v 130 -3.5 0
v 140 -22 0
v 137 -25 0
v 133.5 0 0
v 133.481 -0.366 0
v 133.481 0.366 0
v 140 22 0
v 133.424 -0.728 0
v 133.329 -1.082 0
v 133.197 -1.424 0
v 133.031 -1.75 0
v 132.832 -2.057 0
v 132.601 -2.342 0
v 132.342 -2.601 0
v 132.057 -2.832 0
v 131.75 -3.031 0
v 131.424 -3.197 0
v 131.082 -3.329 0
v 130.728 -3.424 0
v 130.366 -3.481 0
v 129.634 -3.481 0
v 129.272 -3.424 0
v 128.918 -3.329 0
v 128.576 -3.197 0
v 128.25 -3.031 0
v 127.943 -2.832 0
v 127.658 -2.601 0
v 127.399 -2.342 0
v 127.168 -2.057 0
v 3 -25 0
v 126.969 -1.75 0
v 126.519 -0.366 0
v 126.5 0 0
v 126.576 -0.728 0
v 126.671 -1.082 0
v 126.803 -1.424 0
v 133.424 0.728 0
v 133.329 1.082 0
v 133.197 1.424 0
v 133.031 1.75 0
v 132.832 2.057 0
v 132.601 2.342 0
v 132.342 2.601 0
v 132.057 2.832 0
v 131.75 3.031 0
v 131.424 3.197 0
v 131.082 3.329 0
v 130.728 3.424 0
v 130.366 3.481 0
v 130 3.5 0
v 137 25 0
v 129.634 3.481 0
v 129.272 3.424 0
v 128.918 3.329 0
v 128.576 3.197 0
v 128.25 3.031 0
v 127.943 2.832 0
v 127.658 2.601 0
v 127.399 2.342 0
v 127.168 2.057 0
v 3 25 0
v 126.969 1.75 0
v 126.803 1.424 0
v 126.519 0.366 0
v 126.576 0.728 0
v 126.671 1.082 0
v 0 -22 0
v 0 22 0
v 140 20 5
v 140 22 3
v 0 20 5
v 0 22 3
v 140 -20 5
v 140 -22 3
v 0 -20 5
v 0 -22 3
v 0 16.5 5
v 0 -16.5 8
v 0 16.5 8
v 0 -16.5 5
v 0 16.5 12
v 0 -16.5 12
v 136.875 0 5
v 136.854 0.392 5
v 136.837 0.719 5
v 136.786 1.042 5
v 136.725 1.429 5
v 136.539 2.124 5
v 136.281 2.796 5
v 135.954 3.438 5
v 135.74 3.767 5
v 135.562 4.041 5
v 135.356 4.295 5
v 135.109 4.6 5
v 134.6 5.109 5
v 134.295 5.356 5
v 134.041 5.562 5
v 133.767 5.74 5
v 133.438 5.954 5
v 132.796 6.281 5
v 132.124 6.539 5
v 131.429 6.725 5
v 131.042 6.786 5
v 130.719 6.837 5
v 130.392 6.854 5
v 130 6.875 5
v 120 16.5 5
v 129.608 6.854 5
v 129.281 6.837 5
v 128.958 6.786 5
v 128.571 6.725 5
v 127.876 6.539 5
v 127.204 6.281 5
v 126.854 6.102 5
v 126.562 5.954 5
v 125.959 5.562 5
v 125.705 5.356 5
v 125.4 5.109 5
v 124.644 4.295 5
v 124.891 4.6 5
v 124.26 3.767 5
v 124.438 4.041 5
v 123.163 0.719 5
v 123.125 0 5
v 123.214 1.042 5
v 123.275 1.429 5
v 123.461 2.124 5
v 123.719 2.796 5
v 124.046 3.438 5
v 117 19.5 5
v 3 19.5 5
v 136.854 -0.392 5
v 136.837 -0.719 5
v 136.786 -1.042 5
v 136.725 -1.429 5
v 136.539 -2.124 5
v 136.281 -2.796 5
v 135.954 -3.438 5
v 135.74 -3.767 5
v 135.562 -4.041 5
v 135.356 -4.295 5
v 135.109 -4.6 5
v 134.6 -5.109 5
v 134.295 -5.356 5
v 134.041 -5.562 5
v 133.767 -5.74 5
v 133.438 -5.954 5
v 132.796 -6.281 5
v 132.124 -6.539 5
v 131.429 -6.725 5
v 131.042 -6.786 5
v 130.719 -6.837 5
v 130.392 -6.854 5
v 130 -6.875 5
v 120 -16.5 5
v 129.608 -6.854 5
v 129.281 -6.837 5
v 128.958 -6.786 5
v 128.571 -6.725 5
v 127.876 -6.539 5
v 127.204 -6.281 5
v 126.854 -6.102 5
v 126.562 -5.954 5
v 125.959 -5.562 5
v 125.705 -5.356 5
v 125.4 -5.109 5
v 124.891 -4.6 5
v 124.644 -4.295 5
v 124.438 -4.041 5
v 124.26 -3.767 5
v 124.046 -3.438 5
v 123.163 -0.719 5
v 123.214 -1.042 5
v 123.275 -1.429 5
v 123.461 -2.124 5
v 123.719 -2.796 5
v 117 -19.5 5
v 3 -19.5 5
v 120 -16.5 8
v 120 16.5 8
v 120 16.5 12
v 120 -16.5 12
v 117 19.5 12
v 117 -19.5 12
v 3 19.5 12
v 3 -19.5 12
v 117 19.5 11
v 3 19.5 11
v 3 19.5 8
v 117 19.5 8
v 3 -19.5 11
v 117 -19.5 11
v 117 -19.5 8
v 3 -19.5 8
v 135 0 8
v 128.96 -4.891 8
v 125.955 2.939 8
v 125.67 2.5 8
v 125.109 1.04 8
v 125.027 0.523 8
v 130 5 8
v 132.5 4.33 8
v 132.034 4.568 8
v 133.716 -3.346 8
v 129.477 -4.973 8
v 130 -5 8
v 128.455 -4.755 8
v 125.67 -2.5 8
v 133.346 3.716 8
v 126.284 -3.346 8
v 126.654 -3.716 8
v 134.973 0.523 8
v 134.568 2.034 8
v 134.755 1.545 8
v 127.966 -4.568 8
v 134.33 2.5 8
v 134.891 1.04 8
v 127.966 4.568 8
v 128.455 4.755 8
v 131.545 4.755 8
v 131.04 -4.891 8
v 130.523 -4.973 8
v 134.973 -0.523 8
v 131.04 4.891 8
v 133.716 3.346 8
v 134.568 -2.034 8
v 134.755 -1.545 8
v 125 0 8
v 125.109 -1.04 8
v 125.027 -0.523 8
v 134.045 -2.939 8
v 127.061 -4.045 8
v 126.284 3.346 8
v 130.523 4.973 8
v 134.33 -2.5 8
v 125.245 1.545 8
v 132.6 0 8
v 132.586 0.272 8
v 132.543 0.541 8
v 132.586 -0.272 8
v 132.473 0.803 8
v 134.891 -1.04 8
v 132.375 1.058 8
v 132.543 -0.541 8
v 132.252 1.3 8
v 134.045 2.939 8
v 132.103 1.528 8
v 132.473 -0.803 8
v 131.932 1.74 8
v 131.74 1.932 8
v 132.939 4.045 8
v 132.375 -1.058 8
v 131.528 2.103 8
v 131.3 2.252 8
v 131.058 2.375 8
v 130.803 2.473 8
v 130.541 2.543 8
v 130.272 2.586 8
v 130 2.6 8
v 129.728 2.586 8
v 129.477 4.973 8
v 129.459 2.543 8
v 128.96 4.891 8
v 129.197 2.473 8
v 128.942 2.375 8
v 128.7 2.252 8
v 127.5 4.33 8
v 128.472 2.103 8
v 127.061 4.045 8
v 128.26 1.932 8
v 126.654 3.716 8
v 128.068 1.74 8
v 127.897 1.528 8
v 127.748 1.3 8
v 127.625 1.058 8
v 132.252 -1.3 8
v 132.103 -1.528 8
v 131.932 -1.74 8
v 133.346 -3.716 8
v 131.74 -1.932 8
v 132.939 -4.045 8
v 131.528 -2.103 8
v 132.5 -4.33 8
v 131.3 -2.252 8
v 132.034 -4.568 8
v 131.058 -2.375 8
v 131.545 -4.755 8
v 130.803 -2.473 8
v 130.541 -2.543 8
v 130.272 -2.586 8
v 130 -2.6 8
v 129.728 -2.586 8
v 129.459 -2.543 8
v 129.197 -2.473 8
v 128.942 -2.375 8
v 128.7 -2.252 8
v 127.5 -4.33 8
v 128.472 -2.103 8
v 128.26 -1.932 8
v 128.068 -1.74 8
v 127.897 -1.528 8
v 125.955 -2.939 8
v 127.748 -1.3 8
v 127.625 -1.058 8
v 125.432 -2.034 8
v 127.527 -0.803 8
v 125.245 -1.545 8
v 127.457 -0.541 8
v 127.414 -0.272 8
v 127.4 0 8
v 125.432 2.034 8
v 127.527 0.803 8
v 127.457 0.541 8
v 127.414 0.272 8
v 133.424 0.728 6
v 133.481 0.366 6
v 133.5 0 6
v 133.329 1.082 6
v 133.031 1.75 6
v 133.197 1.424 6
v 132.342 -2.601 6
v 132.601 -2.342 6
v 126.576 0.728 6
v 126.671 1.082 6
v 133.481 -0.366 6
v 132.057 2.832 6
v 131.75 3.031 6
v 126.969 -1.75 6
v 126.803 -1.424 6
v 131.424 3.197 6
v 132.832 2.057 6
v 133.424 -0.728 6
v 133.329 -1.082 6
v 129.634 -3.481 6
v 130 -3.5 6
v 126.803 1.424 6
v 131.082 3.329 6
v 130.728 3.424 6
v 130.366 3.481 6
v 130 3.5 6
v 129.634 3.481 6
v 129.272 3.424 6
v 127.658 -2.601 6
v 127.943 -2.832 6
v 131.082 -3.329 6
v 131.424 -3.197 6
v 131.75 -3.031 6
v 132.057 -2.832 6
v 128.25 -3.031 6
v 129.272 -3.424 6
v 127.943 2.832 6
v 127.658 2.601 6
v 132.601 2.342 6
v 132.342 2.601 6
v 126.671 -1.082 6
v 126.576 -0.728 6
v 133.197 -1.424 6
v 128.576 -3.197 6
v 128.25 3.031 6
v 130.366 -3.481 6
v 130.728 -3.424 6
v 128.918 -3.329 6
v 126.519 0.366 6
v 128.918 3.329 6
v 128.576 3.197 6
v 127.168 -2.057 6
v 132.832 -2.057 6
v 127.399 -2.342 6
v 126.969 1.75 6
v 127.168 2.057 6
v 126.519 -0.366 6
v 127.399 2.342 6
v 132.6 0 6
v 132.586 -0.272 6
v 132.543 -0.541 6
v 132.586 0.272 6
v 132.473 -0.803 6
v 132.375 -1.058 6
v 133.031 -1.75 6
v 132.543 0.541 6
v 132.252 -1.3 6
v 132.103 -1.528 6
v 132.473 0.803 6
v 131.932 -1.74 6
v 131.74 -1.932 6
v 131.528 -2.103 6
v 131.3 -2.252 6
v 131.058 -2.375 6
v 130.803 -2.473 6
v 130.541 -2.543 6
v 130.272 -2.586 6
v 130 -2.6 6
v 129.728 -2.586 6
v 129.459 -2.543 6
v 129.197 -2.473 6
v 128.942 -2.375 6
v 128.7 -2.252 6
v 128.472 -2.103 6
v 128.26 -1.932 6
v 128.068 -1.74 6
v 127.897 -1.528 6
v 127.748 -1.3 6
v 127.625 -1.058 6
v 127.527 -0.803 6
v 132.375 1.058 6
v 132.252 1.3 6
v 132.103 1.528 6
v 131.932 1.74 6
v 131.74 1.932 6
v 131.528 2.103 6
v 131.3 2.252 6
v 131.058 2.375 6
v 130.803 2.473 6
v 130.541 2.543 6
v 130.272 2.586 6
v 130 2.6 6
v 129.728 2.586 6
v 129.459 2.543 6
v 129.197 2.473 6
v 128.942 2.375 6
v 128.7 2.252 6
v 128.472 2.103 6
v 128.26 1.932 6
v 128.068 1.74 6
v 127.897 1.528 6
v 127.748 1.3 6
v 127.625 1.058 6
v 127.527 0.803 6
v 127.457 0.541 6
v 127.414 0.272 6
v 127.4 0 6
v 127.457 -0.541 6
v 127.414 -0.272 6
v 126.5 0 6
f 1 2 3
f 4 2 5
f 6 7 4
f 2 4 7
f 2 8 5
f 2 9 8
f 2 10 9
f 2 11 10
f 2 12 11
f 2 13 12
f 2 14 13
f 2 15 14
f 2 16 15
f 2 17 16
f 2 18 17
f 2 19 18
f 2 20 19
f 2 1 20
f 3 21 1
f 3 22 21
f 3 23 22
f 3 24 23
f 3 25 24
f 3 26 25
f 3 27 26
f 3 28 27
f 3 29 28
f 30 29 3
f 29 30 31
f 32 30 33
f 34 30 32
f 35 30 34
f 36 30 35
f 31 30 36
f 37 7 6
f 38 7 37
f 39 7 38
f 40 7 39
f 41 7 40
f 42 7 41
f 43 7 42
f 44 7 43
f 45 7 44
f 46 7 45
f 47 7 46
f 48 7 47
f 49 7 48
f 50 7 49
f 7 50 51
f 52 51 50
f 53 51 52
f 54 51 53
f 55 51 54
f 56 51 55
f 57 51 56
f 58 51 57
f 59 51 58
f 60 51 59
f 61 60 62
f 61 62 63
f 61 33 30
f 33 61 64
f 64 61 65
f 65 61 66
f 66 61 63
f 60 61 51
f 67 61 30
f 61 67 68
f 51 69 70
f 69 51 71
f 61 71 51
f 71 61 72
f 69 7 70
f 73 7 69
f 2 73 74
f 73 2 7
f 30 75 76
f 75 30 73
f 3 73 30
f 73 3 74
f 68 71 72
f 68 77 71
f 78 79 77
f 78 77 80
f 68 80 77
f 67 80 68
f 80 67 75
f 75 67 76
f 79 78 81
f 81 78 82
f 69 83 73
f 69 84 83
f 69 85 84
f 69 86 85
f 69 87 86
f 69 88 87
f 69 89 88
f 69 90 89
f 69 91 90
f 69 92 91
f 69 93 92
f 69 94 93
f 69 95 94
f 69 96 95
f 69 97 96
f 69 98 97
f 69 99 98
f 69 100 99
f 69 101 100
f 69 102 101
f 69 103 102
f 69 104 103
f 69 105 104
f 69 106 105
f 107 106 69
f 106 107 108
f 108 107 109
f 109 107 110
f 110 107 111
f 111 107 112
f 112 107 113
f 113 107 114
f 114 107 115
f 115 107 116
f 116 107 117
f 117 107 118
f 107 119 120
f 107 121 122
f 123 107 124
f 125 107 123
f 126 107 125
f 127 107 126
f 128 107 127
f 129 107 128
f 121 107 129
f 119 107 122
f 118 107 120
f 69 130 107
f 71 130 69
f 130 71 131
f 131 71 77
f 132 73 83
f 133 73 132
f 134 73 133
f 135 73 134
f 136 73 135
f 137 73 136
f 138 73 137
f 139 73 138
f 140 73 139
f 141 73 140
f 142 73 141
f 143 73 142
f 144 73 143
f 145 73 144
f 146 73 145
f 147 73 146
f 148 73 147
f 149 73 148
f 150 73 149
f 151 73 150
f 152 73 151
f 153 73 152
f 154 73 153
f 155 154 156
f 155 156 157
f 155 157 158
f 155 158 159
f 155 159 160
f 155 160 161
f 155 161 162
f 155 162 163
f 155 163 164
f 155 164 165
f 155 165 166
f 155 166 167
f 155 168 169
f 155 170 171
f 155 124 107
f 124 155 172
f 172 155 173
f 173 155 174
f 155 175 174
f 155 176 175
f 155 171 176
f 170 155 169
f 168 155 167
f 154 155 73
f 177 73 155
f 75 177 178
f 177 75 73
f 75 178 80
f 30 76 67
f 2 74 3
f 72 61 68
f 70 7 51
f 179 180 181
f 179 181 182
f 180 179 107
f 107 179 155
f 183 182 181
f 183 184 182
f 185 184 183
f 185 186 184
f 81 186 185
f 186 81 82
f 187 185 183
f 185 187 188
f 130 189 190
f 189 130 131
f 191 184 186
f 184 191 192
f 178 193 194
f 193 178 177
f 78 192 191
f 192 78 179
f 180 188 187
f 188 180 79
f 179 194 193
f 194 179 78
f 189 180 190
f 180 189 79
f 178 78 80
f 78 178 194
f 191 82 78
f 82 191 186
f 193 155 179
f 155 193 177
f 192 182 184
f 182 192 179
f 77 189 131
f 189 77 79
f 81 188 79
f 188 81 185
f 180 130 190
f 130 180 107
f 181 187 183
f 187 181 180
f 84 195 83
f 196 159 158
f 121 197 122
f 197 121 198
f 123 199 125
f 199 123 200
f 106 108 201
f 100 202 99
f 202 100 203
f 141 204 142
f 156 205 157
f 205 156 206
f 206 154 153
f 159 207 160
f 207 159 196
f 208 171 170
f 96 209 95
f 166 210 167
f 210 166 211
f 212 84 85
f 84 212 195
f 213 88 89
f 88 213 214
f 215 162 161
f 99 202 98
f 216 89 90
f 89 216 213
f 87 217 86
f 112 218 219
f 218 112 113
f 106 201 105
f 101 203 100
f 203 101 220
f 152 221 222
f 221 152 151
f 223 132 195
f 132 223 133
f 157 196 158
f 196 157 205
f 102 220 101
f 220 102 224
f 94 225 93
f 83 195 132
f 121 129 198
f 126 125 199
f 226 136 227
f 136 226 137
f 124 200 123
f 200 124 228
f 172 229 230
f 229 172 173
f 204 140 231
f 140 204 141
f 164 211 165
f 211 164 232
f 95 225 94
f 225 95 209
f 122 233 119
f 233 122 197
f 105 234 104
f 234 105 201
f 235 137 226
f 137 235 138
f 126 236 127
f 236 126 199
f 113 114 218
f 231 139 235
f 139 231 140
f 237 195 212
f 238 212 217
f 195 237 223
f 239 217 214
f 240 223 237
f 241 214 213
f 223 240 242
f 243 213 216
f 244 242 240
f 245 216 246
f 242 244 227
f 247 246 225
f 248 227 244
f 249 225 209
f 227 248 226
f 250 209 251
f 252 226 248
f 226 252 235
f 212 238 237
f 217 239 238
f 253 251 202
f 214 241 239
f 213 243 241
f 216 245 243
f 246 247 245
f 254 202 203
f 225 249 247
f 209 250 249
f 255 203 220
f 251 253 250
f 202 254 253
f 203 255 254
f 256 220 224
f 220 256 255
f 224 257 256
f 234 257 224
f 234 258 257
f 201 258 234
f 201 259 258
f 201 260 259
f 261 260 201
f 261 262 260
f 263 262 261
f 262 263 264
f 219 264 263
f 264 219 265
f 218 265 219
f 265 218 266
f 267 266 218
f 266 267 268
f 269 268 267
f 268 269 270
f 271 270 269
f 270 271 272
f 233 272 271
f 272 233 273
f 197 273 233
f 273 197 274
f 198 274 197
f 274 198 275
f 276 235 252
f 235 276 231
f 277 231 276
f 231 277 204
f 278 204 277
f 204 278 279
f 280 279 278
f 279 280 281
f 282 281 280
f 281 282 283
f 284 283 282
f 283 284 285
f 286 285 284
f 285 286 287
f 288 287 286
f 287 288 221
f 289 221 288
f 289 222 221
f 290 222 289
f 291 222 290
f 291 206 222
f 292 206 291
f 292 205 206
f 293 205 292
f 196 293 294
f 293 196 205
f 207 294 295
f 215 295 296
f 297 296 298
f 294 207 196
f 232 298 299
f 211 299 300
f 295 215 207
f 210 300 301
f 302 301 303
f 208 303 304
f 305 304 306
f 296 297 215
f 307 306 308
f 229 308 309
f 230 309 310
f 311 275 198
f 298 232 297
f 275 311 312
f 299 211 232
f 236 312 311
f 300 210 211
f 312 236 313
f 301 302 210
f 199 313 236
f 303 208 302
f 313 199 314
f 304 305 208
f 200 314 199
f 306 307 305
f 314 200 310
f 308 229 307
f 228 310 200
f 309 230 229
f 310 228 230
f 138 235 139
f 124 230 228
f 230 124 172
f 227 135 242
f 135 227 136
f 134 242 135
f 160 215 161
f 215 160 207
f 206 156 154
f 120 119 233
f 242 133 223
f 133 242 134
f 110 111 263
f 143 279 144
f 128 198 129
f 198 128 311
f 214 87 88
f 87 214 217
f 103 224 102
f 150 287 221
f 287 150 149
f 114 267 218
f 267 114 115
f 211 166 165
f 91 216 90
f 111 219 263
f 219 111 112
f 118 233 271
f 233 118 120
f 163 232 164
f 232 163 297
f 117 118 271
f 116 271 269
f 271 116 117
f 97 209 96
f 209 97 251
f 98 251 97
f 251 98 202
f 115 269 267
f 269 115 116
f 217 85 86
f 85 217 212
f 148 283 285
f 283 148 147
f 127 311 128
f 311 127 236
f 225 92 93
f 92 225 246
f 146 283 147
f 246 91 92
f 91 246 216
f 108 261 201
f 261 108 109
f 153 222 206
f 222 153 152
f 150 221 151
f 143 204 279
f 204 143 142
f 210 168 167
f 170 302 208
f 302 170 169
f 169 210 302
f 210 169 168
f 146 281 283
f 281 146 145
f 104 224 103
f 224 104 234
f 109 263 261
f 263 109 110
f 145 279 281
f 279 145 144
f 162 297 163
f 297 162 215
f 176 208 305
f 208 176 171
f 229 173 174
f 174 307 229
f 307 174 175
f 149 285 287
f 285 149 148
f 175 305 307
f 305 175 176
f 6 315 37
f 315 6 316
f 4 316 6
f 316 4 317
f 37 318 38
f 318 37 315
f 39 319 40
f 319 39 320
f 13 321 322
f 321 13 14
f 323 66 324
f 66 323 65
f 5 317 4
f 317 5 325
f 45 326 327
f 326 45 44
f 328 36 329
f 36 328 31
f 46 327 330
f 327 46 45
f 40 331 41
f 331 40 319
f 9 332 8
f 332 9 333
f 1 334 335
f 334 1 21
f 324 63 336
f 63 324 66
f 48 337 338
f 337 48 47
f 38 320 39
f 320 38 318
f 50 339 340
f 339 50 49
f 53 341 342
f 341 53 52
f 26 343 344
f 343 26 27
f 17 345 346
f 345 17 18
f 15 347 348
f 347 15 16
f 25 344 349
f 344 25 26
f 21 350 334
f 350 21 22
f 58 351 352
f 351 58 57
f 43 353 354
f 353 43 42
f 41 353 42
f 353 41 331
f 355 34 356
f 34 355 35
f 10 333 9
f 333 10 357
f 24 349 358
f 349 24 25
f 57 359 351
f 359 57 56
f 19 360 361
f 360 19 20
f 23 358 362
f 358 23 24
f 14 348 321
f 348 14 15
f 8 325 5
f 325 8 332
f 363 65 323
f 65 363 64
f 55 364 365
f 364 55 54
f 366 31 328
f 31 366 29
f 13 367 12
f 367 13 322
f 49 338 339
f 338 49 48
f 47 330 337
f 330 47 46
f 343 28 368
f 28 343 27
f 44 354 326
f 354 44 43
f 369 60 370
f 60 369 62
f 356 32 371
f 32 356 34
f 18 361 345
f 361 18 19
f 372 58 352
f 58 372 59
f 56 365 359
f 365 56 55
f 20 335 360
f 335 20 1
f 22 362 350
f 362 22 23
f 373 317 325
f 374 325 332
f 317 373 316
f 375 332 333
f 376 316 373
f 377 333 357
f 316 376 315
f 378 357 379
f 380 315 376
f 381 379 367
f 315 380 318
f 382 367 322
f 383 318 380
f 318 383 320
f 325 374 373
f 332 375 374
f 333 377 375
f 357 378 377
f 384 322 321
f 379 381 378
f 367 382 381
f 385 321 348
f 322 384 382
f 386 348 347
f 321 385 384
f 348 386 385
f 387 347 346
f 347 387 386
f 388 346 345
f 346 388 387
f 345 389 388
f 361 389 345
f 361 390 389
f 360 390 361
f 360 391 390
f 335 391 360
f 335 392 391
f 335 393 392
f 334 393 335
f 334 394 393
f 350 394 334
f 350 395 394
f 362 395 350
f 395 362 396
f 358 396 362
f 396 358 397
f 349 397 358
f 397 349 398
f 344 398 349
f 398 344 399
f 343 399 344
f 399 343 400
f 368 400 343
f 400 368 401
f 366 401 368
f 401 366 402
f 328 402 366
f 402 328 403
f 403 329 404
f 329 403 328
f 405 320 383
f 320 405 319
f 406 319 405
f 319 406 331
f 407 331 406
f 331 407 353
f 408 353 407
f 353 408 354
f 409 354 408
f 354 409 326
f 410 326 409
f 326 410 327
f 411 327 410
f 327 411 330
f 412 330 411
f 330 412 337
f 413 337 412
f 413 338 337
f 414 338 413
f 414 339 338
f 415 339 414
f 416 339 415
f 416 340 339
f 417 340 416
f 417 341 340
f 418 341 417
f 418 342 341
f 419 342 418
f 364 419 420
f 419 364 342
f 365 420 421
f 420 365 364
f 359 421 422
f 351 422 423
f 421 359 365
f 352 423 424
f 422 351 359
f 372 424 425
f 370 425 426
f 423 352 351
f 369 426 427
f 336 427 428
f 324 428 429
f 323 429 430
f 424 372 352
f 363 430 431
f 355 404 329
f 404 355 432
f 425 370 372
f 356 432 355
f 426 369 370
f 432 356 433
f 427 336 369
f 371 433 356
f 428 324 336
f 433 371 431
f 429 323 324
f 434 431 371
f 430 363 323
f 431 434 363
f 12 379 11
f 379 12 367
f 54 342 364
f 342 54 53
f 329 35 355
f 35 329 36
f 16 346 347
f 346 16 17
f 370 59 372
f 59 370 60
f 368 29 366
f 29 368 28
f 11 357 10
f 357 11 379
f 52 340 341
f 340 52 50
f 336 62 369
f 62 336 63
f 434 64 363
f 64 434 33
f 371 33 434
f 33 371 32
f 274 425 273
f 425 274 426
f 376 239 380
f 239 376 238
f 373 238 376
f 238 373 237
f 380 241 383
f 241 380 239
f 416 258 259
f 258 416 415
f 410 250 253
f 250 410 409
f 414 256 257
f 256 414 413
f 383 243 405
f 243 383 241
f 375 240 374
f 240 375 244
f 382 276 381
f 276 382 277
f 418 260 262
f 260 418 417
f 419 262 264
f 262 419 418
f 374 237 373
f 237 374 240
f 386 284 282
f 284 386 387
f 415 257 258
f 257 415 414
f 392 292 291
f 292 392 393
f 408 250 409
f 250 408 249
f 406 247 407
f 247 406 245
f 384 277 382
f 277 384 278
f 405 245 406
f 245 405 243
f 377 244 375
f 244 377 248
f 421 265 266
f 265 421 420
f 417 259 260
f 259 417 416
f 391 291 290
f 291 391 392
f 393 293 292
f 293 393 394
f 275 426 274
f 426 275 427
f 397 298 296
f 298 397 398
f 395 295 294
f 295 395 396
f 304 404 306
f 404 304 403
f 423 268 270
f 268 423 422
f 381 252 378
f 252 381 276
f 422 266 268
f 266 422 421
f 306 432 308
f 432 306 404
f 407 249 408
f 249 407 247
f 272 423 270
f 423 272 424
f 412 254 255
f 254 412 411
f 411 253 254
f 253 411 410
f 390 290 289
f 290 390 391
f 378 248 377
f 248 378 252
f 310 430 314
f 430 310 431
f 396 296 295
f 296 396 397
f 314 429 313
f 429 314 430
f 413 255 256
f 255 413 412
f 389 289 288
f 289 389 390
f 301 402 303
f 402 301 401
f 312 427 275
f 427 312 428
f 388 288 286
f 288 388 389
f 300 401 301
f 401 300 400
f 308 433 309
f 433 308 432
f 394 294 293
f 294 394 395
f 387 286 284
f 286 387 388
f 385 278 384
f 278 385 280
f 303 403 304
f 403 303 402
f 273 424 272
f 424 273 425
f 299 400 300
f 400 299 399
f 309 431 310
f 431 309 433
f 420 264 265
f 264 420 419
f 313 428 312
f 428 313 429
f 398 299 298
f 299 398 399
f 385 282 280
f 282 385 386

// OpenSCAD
// Screwholes for the stabilizing lid

$fn=60;


module roof(l, w, h){
    polyhedron(
        points=[
            [0,0,0],
            [l,0,0],
            [l,w,0],
            [0,w,0],
            [0,w/2,h],
            [l,w/2,h]
            ],
        faces=[
            [0,1,2,3],
            [0,4,1],
            [1,4,5,2],
            [2,5,3],
            [3,5,4,0]
            ]
            );
    };

//roof(20, 10, 15);

module wedge(l, w, h) {
    polyhedron(
            points=[
                [0,0,0],
                [l,0,0],
                [0,w,0],
                [0,0,h],
                [l,0,h],
                [0,w,h]
            ],
            faces=[
                [0,1,2],
                [0,3,4,1],
                [1,4,5,2],
                [2,5,3,0],
                [3,5,4]
            ]
    );
   };    
//wedge(20, 30, 40);

module tube(d1, d2, h) {
    difference() {
        cylinder(d=d1, h=h);
        cylinder(d=d2, h=h);
        }
    };







module countersunk_screw(vScrew_d, vScrew_l){
    union(){
    cylinder(d=vScrew_d, h= vScrew_l);
    cylinder(d1=vScrew_d*2, h=vScrew_d);
    };
}









vDovetailTolerance_width = 0.2;
vDovetailTolerance_height = 0.2;

vTotalPlate_length = 140;
vTotalPlate_height = 12;

vDovetail_length = vTotalPlate_length;
vDovetailOuter_width = 50;
vDovetailInner_width = 40;
vDovetail_height = (vDovetailOuter_width-vDovetailInner_width)/2;
vDovetail_offsetX = 0;
vDovetail_offsetY = -vDovetailOuter_width/2;
vDovetail_offsetZ = 0;

vDovetailEdgeCutoff = 3;

vArca_length = 120;
vArca_width = 39;
vArca_height = 7;
vArcaBase_cutout = 3;
vArcaBase_height = 1;
vArca_offsetX = 0;
vArca_offsetY = -vArca_width/2;
vArca_offsetZ = vDovetail_height+vArca_height;

vArcaEdgeCutoff = 3;


vLockingCylinder_d1 = 20;
vLockingCylinder_d2 = 10;
vLockingCylinder_h = 8;
vLockingCylinder_offsetX = vTotalPlate_length-10;
vLockingCylinder_offsetY = 0;
vLockingCylinder_offsetZ = 0;

// we are using a M5x6x7 thread nut!
vLockingThreadHole_d = 7;
vLockingThreadHole_h = 6;
vLockingThreadHole_offsetX = vLockingCylinder_offsetX;
vLockingThreadHole_offsetY = vLockingCylinder_offsetY;
vLockingThreadHole_offsetZ = vLockingCylinder_offsetZ;

vLockingHole_d = 5.2;
vLockingHole_h = vTotalPlate_height;
vLockingHole_offsetX = vLockingCylinder_offsetX;
vLockingHole_offsetY = vLockingCylinder_offsetY;
vLockingHole_offsetZ = vLockingCylinder_offsetZ;


difference(){
    union(){
        // Dovetail plate
        translate([vDovetail_offsetX, vDovetail_offsetY, vDovetail_offsetZ])
            difference(){
                intersection(){
                    roof(vDovetail_length, vDovetailOuter_width, vDovetailOuter_width/2);
                    cube([vDovetail_length, vDovetailOuter_width, vDovetail_height]);
                };
                // cut off dovetail edges
                translate([0, 0, 0])
                    wedge(vDovetailEdgeCutoff, vDovetailEdgeCutoff, vDovetail_height);
                translate([vDovetail_length, 0, 0])
                    wedge(-vDovetailEdgeCutoff, vDovetailEdgeCutoff, vDovetail_height);
                translate([0, vDovetailOuter_width, 0])
                    wedge(vDovetailEdgeCutoff, -vDovetailEdgeCutoff, vDovetail_height);
                translate([vDovetail_length, vDovetailOuter_width, 0])
                    wedge(-vDovetailEdgeCutoff, -vDovetailEdgeCutoff, vDovetail_height);
                
            };
        
        // Arca plate    
        translate([vArca_offsetX, vArca_offsetY, vArca_offsetZ])
            mirror([0,0,1])
                difference(){
                    union(){
                        cube([vArca_length, vArca_width, vArcaBase_height ]);
                        translate([0, 0, vArcaBase_height])
                            roof(vArca_length, vArca_width, vArca_width/2);
                        translate([0,0,vArcaBase_height+vArcaBase_cutout])
                            cube([vArca_length, vArca_width, vArca_width]);
                    };
                    translate([0,0,vArca_height])
                        cube([vArca_length, vArca_width, vArca_width]);
                    
                    // cut off edges
                    translate([0, 0, 0])
                        wedge(vArcaEdgeCutoff, vArcaEdgeCutoff, vArca_height);
                    translate([vArca_length, 0, 0])
                        wedge(-vArcaEdgeCutoff, vArcaEdgeCutoff, vArca_height);
                    translate([0, vArca_width, 0])
                        wedge(vArcaEdgeCutoff, -vArcaEdgeCutoff, vArca_height);
                    translate([vArca_length, vArca_width, 0])
                        wedge(-vArcaEdgeCutoff, -vArcaEdgeCutoff, vArca_height);
                    
                };
        
        // Cylinder for locking mechanism
        translate([vLockingCylinder_offsetX, vLockingCylinder_offsetY, vLockingCylinder_offsetZ])
            cylinder(d1=vLockingCylinder_d1, d2=vLockingCylinder_d2, h=vLockingCylinder_h);
                
    };
    // Hole for thread nut
        translate([vLockingThreadHole_offsetX, vLockingThreadHole_offsetY, vLockingThreadHole_offsetZ])
            cylinder(d=vLockingThreadHole_d, h=vLockingThreadHole_h);
    
    // ScrewHole
        translate([vLockingHole_offsetX, vLockingHole_offsetY, vLockingHole_offsetZ])
            cylinder(d=vLockingHole_d, h=vLockingHole_h);
    
};
